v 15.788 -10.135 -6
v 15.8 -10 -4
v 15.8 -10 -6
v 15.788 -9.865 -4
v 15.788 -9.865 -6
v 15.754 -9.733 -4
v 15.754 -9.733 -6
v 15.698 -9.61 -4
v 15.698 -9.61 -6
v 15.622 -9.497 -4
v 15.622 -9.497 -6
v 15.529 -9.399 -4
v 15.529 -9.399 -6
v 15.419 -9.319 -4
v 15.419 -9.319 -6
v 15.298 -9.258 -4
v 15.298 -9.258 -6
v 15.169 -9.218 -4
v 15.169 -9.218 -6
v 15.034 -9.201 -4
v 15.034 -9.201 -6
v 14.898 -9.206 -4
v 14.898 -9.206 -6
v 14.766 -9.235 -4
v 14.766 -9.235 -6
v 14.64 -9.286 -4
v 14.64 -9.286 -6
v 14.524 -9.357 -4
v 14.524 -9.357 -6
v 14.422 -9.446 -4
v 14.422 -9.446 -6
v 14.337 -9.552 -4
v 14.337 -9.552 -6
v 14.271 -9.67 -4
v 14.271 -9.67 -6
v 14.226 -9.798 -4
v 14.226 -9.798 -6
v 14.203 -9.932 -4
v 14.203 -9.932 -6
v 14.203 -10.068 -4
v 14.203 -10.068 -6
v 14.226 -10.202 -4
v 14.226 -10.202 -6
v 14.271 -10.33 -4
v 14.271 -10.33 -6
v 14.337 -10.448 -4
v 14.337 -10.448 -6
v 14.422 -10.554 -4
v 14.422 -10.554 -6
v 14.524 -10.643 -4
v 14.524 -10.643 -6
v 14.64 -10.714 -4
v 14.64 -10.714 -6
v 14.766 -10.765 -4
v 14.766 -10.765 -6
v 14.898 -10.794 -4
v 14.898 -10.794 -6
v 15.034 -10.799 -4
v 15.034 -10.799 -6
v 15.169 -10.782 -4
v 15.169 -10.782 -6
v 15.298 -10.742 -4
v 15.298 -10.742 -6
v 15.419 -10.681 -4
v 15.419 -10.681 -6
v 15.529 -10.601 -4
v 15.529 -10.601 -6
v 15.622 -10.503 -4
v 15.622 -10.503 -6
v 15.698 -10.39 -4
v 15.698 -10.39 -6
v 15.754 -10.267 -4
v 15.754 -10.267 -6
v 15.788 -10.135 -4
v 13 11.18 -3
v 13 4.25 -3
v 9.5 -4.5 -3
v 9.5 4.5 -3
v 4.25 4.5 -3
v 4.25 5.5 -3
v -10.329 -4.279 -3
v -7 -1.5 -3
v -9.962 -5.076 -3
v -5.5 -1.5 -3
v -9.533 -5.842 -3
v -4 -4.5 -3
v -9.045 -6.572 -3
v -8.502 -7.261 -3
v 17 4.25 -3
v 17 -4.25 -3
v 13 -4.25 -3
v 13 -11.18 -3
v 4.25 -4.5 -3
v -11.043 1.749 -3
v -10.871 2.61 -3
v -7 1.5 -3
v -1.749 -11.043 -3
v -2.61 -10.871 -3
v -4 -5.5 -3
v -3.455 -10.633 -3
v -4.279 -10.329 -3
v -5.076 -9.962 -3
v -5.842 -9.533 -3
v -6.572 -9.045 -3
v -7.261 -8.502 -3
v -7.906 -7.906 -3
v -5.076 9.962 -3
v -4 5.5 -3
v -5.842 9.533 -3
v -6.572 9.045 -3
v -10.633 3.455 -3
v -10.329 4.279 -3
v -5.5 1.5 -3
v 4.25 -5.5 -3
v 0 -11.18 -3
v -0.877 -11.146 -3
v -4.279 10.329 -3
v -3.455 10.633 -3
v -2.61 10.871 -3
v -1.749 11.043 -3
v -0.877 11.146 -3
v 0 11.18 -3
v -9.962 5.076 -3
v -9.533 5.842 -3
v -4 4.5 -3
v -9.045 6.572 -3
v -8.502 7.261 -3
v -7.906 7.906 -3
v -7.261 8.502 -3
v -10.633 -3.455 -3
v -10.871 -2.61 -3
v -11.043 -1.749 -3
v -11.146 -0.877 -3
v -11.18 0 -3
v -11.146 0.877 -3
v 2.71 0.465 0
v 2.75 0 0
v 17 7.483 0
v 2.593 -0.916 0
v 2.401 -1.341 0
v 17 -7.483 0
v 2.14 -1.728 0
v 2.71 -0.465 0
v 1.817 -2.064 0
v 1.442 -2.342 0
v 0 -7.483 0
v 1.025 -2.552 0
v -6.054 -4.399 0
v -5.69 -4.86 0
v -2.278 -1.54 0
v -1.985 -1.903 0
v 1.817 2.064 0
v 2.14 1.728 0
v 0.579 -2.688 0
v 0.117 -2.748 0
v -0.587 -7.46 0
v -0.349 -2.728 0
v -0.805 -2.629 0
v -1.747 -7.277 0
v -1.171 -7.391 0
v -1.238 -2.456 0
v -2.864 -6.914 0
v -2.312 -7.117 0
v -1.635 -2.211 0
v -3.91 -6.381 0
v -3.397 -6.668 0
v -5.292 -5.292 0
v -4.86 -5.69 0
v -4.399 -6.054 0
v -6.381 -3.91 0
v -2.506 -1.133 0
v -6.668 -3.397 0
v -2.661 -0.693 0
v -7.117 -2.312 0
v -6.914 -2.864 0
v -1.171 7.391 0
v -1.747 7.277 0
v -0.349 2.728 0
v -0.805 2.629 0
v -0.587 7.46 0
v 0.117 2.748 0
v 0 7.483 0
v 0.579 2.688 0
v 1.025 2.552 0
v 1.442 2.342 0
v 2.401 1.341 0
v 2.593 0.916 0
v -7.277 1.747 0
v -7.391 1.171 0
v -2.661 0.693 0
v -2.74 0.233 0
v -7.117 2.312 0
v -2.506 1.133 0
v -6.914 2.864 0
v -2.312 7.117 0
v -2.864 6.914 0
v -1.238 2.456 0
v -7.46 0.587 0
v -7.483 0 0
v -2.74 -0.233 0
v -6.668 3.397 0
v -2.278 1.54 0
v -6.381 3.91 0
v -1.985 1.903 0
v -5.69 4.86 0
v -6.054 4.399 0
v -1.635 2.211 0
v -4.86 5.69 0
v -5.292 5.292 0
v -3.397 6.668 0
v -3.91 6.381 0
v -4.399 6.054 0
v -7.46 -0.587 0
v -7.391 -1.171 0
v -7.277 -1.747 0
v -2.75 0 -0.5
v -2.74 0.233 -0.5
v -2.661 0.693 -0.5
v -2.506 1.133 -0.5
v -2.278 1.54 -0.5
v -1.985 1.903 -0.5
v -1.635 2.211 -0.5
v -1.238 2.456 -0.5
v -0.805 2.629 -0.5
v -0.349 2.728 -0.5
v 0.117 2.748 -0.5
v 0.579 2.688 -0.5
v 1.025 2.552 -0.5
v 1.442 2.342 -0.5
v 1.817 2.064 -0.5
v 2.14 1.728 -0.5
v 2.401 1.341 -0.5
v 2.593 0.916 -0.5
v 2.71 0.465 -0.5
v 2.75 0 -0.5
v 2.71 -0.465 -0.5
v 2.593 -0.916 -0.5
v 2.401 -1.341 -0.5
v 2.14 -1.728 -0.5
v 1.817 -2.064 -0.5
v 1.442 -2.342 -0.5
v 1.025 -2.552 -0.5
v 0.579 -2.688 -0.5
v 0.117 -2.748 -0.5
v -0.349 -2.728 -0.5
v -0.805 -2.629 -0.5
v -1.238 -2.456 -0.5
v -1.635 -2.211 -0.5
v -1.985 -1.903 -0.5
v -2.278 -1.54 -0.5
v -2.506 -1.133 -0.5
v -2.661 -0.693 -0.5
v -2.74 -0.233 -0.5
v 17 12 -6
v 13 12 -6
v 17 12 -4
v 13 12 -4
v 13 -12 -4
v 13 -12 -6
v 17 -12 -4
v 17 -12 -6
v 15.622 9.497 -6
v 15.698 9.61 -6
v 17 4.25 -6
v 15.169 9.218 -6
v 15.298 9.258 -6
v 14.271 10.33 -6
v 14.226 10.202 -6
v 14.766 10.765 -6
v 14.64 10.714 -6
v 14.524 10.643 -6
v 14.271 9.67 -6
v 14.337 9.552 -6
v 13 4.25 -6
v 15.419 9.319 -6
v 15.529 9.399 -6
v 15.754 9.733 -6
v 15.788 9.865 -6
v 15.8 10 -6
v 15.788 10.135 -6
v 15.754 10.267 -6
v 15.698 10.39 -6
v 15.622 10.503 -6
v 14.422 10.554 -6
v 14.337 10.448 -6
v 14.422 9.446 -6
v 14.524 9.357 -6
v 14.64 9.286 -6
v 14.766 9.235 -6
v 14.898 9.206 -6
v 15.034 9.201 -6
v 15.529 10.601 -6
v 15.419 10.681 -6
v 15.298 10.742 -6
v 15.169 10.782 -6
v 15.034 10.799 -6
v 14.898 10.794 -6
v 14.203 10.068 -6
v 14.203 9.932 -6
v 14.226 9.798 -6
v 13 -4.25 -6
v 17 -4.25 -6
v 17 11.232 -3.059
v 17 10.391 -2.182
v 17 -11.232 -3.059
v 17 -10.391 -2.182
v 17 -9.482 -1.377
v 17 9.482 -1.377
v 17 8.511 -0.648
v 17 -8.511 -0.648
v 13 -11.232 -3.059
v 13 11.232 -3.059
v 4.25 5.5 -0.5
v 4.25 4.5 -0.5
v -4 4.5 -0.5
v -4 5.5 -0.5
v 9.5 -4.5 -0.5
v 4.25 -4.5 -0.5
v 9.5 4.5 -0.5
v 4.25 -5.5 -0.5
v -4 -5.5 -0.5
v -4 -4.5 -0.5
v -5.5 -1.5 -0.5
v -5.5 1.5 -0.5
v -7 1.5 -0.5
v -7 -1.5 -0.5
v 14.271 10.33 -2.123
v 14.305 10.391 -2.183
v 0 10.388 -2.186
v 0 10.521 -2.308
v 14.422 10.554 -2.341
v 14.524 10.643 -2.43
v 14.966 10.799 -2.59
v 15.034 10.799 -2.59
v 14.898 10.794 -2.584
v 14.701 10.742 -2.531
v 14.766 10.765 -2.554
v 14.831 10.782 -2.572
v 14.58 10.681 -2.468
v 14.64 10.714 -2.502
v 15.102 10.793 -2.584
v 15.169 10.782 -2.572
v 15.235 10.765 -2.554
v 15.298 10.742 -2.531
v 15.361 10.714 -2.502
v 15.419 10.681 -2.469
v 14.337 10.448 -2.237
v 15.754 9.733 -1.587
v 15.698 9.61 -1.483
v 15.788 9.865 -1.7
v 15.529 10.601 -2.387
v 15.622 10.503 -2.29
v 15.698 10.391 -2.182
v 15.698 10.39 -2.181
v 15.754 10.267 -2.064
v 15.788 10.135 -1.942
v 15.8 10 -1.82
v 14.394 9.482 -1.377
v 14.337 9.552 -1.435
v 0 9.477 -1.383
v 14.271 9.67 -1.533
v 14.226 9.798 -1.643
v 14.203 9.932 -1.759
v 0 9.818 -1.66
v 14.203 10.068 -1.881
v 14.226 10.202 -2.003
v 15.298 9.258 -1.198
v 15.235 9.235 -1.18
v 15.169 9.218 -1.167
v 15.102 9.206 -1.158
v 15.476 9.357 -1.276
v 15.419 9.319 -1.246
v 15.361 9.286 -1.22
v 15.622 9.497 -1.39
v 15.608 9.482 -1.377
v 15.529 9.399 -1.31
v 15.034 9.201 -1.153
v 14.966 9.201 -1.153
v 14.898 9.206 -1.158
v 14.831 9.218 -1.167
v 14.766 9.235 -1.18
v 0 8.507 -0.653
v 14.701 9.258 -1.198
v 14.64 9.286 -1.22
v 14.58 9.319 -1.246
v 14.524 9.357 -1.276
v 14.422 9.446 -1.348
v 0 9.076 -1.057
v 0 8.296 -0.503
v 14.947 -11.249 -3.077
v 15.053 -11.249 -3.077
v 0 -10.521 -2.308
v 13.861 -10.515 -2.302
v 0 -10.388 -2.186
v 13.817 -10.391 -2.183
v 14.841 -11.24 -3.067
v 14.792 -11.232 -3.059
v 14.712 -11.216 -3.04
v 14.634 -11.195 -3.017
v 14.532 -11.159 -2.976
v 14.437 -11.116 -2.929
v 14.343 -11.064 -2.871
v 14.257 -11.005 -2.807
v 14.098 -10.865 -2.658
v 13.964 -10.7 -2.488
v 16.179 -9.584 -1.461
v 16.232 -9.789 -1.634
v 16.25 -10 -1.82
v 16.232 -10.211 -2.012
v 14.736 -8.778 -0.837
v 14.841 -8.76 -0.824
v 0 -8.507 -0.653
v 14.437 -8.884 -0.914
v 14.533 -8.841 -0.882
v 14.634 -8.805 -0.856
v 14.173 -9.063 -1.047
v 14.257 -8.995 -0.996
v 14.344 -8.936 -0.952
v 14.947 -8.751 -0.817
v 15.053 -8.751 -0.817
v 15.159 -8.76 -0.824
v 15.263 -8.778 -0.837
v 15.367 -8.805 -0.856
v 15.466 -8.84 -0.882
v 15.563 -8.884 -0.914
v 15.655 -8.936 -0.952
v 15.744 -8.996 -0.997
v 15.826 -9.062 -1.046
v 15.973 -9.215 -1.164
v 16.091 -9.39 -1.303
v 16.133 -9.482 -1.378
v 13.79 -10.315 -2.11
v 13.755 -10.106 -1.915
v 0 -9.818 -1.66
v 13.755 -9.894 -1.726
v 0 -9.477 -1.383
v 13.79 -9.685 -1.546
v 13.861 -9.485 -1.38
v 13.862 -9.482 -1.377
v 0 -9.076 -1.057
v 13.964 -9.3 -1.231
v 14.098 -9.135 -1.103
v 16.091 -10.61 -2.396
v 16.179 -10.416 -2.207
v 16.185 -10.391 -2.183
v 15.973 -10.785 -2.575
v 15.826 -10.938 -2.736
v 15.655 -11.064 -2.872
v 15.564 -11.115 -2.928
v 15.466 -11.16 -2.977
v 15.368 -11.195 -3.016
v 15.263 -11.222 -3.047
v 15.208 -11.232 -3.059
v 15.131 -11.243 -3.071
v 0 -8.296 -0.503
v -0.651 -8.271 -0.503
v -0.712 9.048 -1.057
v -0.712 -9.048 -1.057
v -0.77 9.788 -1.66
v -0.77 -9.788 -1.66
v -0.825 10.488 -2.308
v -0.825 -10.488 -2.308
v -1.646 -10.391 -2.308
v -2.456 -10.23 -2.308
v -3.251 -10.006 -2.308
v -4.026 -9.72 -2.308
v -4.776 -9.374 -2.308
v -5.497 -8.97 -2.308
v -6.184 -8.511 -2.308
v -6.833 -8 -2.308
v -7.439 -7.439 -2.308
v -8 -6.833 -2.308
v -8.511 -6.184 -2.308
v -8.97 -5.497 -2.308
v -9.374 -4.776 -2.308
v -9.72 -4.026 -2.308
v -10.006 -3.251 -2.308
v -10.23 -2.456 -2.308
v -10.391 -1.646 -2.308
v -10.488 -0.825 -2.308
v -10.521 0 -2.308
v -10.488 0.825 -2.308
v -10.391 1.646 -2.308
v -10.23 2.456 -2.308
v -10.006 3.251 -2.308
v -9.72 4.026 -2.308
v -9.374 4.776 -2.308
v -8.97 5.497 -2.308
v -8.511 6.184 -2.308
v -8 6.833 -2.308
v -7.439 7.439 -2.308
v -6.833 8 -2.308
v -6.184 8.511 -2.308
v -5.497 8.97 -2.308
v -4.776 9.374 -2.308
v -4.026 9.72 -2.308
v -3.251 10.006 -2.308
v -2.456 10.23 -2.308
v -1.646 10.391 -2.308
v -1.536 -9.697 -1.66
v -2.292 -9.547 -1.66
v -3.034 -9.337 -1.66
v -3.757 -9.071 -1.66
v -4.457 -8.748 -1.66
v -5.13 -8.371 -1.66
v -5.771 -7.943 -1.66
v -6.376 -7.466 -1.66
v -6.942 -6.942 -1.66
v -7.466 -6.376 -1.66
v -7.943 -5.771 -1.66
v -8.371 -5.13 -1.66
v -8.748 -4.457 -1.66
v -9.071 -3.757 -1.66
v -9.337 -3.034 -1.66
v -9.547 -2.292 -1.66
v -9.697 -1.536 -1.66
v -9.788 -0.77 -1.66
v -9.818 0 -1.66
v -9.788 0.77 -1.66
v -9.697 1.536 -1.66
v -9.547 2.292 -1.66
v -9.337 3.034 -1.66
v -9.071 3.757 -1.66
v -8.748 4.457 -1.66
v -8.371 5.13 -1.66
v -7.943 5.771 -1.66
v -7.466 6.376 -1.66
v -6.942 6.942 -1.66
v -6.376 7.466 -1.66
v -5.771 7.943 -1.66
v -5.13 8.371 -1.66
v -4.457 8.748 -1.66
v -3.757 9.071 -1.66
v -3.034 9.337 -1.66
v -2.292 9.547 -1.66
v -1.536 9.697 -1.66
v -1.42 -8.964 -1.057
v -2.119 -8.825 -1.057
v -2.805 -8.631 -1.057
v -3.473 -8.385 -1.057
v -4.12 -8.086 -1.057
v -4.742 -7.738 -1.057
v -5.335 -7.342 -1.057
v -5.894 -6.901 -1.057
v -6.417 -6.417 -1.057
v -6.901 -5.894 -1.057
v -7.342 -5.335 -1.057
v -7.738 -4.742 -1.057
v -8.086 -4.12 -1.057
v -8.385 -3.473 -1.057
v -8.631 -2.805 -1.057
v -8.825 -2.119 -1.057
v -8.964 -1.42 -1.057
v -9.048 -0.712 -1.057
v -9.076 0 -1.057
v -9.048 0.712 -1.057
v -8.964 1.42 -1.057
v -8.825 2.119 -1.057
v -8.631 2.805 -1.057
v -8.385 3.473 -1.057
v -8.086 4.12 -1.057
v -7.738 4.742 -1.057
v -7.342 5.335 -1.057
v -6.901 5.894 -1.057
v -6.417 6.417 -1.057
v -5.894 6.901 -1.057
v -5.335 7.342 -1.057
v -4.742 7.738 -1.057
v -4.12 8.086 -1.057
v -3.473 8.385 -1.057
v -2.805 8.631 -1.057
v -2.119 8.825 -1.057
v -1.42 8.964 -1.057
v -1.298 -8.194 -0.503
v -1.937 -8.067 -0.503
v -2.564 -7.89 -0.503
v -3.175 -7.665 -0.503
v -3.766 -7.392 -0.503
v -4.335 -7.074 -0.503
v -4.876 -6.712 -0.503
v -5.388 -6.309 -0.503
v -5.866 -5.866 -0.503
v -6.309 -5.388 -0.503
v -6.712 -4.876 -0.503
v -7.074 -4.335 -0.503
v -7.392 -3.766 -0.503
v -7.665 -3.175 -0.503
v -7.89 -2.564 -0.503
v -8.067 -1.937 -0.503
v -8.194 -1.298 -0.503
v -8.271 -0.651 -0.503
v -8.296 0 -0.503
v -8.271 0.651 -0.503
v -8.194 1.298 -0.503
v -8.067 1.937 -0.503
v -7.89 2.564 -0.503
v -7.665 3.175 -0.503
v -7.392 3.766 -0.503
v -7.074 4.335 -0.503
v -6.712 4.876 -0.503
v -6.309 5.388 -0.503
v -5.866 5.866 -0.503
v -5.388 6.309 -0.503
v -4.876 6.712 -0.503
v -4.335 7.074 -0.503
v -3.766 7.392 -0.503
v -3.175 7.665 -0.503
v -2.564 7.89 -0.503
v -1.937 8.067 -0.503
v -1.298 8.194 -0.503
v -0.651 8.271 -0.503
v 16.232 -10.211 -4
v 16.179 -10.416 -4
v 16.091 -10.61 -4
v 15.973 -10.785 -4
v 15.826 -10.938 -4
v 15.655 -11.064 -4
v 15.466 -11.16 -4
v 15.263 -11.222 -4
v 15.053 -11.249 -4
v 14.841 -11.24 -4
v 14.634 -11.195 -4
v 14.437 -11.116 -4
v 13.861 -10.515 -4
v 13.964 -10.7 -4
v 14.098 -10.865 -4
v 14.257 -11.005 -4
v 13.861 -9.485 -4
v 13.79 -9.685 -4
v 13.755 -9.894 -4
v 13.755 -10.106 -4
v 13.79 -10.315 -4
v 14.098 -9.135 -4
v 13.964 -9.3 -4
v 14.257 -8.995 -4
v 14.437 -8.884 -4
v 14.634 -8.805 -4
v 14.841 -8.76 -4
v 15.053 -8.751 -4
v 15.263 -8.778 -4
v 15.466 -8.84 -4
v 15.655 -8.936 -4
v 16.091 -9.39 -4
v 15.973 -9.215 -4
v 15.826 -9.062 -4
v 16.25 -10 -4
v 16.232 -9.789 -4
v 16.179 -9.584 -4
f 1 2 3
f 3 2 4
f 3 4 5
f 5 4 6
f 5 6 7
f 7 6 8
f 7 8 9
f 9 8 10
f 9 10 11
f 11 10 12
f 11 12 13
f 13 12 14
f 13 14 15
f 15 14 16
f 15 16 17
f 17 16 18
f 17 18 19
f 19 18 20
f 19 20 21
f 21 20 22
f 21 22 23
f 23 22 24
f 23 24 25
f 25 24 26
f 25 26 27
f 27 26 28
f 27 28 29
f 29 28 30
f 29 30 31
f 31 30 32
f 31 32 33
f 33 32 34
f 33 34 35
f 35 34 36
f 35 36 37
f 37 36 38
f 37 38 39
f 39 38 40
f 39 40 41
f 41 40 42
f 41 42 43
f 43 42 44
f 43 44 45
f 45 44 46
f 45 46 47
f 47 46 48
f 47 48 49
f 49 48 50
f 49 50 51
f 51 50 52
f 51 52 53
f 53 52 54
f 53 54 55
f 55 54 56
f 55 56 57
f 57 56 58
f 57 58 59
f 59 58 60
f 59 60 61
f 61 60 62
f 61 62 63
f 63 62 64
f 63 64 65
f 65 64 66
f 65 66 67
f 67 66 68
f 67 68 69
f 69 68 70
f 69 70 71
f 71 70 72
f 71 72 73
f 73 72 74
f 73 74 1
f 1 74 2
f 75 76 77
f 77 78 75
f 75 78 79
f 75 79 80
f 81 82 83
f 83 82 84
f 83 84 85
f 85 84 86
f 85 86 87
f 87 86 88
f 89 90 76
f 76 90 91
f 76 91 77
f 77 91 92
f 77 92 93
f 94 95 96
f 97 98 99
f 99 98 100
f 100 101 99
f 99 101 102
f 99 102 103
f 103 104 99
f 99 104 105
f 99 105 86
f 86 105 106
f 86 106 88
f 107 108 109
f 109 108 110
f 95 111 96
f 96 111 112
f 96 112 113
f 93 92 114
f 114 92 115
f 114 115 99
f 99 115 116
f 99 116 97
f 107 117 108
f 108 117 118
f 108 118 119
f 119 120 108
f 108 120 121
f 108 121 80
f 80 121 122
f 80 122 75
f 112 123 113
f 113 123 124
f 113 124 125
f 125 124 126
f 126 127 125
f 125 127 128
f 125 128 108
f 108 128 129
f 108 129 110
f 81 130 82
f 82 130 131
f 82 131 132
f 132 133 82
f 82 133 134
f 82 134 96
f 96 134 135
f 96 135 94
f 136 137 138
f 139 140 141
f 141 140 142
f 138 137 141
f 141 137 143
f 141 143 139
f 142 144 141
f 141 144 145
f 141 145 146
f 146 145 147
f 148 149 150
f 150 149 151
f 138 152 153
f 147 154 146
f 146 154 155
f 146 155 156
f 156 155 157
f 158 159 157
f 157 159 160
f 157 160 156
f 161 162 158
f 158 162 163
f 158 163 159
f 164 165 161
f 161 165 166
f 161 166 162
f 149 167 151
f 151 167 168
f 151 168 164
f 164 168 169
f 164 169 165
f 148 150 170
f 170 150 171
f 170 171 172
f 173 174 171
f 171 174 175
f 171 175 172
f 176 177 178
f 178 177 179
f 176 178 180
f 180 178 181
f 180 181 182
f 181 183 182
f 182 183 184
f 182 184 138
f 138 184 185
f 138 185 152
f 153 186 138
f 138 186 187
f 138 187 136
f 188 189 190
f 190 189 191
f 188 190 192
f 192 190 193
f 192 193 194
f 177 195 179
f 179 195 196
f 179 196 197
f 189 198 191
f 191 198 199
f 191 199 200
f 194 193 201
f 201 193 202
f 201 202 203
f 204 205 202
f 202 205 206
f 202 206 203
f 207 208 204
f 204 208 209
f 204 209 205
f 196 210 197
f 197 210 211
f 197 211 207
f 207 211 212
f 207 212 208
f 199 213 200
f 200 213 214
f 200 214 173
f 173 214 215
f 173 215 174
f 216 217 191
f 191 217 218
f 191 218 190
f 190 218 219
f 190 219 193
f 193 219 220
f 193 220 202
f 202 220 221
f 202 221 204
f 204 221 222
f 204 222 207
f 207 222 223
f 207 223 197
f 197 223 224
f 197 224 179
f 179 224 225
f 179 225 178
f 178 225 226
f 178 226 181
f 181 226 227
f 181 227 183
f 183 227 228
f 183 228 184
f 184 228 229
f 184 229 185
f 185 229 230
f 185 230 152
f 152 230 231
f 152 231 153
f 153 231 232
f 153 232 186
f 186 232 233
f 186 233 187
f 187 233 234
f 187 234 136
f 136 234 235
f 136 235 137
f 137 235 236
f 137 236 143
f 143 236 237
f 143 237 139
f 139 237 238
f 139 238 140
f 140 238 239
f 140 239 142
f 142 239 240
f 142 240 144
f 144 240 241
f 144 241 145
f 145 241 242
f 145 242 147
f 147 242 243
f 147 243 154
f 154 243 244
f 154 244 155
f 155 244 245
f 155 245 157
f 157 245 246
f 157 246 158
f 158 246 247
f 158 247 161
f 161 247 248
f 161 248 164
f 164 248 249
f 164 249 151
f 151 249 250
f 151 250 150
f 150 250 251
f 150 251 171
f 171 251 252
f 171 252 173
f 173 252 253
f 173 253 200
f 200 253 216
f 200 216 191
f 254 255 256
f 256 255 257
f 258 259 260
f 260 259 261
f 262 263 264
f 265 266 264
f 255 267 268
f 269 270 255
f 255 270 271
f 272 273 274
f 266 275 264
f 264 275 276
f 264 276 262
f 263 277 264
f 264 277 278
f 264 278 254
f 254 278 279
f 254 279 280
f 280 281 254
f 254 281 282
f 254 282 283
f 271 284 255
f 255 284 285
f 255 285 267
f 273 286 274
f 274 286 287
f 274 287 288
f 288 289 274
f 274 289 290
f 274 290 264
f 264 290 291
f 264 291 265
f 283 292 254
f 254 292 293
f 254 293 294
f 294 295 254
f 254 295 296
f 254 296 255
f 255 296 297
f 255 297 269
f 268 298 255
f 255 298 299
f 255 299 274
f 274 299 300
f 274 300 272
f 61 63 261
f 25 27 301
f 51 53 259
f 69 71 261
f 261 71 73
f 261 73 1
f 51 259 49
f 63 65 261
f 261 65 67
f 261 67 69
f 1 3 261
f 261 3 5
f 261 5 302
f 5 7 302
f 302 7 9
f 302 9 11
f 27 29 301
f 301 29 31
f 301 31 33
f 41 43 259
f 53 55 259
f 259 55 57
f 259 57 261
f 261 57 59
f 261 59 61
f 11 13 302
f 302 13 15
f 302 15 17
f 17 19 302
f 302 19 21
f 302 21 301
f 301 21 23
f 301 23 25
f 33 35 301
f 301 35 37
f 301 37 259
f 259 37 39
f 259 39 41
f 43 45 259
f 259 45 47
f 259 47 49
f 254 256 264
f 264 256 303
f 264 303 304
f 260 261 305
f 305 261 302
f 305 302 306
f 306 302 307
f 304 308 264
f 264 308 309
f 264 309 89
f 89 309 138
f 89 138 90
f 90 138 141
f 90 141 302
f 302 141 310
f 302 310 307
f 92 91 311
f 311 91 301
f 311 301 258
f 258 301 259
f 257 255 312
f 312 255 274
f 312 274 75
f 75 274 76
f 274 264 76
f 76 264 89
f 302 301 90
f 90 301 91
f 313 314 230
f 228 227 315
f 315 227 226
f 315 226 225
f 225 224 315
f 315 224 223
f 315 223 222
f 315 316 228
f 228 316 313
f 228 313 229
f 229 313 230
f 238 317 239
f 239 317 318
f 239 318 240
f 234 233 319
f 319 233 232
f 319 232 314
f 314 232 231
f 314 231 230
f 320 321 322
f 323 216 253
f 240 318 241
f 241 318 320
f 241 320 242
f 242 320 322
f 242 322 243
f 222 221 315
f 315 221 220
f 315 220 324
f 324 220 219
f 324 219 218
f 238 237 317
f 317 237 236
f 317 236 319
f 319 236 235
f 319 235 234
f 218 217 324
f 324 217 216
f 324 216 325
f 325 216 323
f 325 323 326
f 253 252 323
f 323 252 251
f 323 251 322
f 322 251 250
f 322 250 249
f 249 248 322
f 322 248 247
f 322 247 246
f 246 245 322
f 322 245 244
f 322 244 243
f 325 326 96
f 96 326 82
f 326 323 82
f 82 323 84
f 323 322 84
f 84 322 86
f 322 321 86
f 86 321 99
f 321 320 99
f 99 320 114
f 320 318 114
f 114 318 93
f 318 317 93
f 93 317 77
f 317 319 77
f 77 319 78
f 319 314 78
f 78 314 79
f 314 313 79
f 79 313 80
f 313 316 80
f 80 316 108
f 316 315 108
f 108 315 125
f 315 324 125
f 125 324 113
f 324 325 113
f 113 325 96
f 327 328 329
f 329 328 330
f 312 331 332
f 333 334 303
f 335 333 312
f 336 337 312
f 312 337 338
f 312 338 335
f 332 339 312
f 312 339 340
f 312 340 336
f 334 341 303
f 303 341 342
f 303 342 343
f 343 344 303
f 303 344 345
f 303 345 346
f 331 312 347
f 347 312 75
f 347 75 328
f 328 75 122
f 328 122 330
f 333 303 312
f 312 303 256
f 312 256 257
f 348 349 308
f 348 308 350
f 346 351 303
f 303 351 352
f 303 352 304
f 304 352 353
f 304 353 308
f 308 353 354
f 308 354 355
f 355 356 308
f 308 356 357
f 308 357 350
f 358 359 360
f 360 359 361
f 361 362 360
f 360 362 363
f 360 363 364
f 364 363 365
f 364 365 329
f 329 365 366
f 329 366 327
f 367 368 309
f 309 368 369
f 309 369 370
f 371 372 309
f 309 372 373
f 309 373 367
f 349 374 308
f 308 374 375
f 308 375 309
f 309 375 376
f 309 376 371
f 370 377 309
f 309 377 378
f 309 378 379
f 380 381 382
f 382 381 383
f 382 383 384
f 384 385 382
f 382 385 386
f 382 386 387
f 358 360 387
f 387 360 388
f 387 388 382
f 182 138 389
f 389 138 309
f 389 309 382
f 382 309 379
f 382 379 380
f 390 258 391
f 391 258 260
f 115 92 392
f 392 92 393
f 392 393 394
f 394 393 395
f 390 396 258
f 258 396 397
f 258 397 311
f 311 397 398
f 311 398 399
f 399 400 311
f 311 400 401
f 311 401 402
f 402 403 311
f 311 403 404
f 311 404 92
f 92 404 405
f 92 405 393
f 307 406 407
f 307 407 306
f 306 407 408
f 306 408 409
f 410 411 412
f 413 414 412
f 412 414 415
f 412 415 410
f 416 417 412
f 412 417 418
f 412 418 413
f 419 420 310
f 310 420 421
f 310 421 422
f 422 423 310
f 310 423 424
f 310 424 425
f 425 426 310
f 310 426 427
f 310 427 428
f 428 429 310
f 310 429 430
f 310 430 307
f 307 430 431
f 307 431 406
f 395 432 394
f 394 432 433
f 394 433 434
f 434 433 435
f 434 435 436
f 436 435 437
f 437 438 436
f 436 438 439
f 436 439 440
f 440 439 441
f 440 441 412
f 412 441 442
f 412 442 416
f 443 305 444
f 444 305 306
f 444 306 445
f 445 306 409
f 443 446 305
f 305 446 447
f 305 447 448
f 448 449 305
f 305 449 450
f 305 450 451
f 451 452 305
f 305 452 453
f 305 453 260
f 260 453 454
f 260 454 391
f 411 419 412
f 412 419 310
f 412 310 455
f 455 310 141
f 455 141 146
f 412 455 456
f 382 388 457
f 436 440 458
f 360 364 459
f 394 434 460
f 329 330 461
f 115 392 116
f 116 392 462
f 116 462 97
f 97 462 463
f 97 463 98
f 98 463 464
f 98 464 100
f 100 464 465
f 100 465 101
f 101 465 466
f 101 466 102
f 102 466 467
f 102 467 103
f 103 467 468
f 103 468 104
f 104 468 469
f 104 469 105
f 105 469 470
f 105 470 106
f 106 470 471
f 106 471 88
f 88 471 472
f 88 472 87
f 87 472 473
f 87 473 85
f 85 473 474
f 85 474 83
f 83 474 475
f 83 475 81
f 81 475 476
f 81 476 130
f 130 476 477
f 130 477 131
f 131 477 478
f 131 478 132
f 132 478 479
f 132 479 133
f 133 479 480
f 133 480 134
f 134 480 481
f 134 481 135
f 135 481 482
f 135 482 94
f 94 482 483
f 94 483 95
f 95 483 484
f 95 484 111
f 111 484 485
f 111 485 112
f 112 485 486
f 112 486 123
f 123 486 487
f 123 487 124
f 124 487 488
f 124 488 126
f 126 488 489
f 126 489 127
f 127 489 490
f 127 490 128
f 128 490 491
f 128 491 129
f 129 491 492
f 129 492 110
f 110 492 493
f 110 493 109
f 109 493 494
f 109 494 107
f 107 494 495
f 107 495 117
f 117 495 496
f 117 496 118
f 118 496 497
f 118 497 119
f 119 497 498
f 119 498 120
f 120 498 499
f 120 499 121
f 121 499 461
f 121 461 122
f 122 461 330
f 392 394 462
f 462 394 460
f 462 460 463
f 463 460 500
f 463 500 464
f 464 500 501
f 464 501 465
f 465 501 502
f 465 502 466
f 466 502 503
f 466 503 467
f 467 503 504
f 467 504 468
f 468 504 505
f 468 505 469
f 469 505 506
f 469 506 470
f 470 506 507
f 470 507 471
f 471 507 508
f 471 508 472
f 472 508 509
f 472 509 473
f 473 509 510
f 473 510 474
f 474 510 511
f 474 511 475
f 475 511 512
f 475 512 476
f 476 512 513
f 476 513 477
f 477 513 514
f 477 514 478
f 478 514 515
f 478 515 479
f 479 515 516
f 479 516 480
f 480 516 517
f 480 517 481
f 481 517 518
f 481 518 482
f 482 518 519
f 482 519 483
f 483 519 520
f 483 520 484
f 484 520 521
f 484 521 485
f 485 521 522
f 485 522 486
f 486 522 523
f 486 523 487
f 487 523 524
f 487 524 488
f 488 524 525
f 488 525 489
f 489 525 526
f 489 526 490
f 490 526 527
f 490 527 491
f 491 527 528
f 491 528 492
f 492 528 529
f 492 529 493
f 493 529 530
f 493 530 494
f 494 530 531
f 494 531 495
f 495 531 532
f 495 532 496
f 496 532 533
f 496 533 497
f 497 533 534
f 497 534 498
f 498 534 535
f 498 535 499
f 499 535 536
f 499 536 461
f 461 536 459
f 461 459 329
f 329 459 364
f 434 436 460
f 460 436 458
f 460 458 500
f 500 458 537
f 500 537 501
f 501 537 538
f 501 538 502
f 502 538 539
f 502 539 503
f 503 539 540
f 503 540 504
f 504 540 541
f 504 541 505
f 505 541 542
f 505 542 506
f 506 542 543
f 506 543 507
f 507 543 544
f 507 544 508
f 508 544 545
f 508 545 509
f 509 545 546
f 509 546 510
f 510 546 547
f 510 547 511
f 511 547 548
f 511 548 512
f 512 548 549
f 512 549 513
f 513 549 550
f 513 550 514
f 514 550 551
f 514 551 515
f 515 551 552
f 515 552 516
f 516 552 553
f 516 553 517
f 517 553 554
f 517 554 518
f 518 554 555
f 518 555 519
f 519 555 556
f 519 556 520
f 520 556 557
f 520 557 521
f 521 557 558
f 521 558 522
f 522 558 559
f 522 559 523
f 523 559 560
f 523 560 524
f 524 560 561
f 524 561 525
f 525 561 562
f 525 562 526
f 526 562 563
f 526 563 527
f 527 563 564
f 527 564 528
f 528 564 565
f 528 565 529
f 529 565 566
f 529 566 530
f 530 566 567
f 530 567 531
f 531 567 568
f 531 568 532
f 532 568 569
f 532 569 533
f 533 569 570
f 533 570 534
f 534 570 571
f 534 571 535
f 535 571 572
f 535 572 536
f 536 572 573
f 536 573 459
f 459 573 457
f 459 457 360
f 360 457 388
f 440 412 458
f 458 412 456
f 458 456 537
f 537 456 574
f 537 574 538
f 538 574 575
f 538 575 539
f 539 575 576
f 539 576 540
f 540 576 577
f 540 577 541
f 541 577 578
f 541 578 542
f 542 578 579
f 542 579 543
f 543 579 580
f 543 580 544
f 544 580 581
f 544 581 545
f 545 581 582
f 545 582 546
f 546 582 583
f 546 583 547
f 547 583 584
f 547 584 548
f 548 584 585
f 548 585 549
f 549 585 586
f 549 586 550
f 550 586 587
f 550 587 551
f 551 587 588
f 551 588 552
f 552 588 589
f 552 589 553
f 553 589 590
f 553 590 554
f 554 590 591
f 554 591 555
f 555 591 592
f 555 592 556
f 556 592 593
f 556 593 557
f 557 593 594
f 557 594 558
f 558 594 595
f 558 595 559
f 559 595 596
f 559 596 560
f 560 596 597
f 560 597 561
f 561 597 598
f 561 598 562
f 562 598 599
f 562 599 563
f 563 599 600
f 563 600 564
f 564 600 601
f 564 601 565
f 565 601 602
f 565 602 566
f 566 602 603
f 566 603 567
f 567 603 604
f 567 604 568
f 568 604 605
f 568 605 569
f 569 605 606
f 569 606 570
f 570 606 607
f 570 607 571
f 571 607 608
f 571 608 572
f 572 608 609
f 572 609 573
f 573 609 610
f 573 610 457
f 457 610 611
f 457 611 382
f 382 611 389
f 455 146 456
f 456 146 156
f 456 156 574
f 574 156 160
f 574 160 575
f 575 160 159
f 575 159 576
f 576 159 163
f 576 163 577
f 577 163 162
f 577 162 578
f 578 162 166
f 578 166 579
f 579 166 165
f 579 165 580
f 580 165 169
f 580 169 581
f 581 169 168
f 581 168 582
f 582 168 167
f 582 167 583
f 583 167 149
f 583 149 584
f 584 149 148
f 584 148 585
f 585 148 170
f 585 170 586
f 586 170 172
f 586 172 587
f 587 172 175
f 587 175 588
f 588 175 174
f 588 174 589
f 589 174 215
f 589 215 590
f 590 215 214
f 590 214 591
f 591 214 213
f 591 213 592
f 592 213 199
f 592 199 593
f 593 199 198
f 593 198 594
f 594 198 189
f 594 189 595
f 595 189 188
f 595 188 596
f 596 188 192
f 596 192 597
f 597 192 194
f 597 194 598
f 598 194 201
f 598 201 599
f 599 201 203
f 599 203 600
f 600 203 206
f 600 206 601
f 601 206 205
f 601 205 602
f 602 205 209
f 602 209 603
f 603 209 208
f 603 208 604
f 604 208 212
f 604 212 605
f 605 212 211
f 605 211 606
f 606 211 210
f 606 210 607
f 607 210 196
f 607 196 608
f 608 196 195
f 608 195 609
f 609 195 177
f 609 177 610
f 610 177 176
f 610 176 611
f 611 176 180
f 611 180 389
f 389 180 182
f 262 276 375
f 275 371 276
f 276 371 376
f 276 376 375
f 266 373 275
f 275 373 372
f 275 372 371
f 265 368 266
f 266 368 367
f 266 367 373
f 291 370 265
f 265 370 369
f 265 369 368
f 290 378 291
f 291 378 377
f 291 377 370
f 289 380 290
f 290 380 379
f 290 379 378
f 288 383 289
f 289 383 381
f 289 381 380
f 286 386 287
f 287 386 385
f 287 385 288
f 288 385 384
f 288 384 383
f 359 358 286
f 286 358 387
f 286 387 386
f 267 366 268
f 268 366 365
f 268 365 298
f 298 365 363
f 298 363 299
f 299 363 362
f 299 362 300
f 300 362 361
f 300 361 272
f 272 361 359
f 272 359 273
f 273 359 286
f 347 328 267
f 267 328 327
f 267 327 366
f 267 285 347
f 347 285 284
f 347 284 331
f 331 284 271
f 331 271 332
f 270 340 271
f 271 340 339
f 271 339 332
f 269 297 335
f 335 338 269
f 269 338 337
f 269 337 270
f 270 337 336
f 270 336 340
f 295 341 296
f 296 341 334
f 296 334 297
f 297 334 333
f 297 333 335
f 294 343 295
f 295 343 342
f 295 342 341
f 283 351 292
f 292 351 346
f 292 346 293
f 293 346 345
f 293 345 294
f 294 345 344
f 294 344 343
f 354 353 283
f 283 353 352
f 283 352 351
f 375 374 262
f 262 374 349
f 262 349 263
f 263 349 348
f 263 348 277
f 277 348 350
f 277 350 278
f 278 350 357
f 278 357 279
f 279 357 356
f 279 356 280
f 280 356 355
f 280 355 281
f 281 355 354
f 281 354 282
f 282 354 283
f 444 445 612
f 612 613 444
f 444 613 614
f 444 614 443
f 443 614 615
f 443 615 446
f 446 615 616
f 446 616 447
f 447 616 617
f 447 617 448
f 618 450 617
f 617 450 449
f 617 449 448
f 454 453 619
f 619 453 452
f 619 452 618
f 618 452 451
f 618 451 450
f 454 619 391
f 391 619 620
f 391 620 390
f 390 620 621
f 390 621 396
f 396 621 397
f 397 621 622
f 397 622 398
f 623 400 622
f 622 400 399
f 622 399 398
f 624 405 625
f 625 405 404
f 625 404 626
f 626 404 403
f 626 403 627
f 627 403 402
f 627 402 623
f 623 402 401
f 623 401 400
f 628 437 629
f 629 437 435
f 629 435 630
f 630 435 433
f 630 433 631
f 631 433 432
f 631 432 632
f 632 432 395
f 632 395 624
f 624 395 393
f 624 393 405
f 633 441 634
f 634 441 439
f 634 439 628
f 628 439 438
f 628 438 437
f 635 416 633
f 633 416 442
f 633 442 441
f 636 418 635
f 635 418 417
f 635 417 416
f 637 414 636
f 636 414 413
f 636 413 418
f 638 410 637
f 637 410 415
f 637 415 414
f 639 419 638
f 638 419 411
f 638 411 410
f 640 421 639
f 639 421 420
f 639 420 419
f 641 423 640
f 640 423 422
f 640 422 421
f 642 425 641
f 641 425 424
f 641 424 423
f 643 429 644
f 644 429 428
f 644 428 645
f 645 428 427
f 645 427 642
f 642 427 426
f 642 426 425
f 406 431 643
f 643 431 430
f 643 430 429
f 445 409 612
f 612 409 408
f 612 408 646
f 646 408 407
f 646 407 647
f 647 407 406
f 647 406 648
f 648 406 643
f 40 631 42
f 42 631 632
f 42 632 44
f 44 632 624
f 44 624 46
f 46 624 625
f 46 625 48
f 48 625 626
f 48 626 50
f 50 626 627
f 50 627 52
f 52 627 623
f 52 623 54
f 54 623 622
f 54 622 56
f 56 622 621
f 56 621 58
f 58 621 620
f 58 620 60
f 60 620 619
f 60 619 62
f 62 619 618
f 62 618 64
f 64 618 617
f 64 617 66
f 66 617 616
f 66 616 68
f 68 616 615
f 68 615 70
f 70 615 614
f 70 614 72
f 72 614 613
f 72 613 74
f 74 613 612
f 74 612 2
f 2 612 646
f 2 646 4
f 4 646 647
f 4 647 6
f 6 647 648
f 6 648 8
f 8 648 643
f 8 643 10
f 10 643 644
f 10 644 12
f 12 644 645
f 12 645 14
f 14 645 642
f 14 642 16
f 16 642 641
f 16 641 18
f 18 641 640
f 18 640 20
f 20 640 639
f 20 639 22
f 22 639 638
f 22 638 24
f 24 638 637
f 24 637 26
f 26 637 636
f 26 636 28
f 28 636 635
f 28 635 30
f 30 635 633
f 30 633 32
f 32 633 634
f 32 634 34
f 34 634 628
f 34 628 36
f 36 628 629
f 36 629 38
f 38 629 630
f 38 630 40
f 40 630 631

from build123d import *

# Parameters (mm, degrees)
SKETCH1_R           = 2.75
BOSS_EXTRUDE1_DEPTH = 6
BODY_START          = -3
SKETCH2_R           = 2.75
BODY_HOLE_DEPTH     = 3
POT_START           = -3
POT_INSERT_DEPTH    = 2.5
CUT_EXTRUDE2_DEPTH  = 23.226110771
CUT_REVOLVE1_ANGLE  = 180
SKETCH7_R           = 0.8
SCREW_HOLES_DEPTH   = 22.656407828
SKETCH9_R           = 1.25
SCREW_HEADS_DEPTH   = 4


with BuildPart() as part:
    # Sketch1 → Boss-Extrude1 (new body)
    with BuildSketch(Plane.XY):
        with BuildLine():
            Line((17, -12), (17, 12))
            Line((17, 12), (5, 12))
            ThreePointArc((5, 12), (-13, 0), (5, -12))
            Line((5, -12), (17, -12))
        make_face()
        Circle(SKETCH1_R, mode=Mode.SUBTRACT)
    extrude(amount=-BOSS_EXTRUDE1_DEPTH)

    # Sketch2 → Body Hole (cut)
    with BuildSketch(Plane.XY.offset(BODY_START)):
        with BuildLine():
            ThreePointArc((5, 12), (-13, 0), (5, -12))
            Line((5, -12), (13, -12))
            Line((13, -12), (13, -4.25))
            Line((13, -4.25), (17, -4.25))
            Line((17, -4.25), (17, 4.25))
            Line((17, 4.25), (13, 4.25))
            Line((13, 4.25), (13, 12))
            Line((13, 12), (5, 12))
        make_face()
        Circle(SKETCH2_R, mode=Mode.SUBTRACT)
    extrude(amount=-BODY_HOLE_DEPTH, mode=Mode.SUBTRACT)

    # Sketch8 → Pot Insert (cut)
    with BuildSketch(Plane(origin=(28.28760271, 0, 0), x_dir=(1, 0, 0), z_dir=(0, 0, 1)).offset(POT_START)):
        Polygon((-35.287602709, 0), (-35.287602709, -1.5), (-33.787602709, -1.5), (-32.287602709, -4.5), (-32.287602709, -5.5), (-28.287602709, -5.5), (-24.037602709, -5.5), (-24.037602709, -4.5), (-18.787602709, -4.5), (-18.787602709, 0), (-18.787602709, 4.5), (-24.037602709, 4.5), (-24.037602709, 5.5), (-28.287602709, 5.5), (-32.287602709, 5.5), (-32.287602709, 4.5), (-33.787602709, 1.5), (-35.287602709, 1.5), align=None)
    extrude(amount=POT_INSERT_DEPTH, mode=Mode.SUBTRACT)

    # Sketch3 → Cut-Extrude2 (cut, through all)
    with BuildSketch(Plane(origin=(0, 0, 0), x_dir=(0, 0, -1), z_dir=(1, 0, 0))):
        with BuildLine():
            ThreePointArc((-2, 0), (2.393398282, 10.606601718), (13, 15))
            Line((13, 15), (-2, 15))
            Line((-2, 15), (-2, 0))
        make_face()
        with BuildLine():
            ThreePointArc((13, -15), (2.393398282, -10.606601718), (-2, 0))
            Line((-2, 0), (-2, -15))
            Line((-2, -15), (13, -15))
        make_face()
    extrude(amount=CUT_EXTRUDE2_DEPTH, mode=Mode.SUBTRACT)

    # Sketch6 → Cut-Revolve1 (revolve, cut)
    with BuildSketch(Plane(origin=(0, 0, 0), x_dir=(0, 0, -1), z_dir=(1, 0, 0))):
        with BuildLine():
            ThreePointArc((-1, 5.385164807), (4.508164866, 12.36481848), (13, 15))
            Line((13, 15), (-2, 15))
            Line((-2, 15), (-2, 5.385164807))
            Line((-2, 5.385164807), (-1, 5.385164807))
        make_face()
    revolve(axis=Axis((0, 0, 0), (0, 0, 1)), revolution_arc=CUT_REVOLVE1_ANGLE, mode=Mode.SUBTRACT)

    # Sketch7 → Screw Holes (cut, through all)
    with BuildSketch(Plane.XY):
        with Locations((15, 10)):
            Circle(SKETCH7_R)
        with Locations((15, -10)):
            Circle(SKETCH7_R)
    extrude(amount=-SCREW_HOLES_DEPTH, mode=Mode.SUBTRACT)

    # Sketch9 → Screw Heads (cut)
    with BuildSketch(Plane.XY):
        with Locations((15, -10)):
            Circle(SKETCH9_R)
    extrude(amount=-SCREW_HEADS_DEPTH, mode=Mode.SUBTRACT)


solid = part.part
